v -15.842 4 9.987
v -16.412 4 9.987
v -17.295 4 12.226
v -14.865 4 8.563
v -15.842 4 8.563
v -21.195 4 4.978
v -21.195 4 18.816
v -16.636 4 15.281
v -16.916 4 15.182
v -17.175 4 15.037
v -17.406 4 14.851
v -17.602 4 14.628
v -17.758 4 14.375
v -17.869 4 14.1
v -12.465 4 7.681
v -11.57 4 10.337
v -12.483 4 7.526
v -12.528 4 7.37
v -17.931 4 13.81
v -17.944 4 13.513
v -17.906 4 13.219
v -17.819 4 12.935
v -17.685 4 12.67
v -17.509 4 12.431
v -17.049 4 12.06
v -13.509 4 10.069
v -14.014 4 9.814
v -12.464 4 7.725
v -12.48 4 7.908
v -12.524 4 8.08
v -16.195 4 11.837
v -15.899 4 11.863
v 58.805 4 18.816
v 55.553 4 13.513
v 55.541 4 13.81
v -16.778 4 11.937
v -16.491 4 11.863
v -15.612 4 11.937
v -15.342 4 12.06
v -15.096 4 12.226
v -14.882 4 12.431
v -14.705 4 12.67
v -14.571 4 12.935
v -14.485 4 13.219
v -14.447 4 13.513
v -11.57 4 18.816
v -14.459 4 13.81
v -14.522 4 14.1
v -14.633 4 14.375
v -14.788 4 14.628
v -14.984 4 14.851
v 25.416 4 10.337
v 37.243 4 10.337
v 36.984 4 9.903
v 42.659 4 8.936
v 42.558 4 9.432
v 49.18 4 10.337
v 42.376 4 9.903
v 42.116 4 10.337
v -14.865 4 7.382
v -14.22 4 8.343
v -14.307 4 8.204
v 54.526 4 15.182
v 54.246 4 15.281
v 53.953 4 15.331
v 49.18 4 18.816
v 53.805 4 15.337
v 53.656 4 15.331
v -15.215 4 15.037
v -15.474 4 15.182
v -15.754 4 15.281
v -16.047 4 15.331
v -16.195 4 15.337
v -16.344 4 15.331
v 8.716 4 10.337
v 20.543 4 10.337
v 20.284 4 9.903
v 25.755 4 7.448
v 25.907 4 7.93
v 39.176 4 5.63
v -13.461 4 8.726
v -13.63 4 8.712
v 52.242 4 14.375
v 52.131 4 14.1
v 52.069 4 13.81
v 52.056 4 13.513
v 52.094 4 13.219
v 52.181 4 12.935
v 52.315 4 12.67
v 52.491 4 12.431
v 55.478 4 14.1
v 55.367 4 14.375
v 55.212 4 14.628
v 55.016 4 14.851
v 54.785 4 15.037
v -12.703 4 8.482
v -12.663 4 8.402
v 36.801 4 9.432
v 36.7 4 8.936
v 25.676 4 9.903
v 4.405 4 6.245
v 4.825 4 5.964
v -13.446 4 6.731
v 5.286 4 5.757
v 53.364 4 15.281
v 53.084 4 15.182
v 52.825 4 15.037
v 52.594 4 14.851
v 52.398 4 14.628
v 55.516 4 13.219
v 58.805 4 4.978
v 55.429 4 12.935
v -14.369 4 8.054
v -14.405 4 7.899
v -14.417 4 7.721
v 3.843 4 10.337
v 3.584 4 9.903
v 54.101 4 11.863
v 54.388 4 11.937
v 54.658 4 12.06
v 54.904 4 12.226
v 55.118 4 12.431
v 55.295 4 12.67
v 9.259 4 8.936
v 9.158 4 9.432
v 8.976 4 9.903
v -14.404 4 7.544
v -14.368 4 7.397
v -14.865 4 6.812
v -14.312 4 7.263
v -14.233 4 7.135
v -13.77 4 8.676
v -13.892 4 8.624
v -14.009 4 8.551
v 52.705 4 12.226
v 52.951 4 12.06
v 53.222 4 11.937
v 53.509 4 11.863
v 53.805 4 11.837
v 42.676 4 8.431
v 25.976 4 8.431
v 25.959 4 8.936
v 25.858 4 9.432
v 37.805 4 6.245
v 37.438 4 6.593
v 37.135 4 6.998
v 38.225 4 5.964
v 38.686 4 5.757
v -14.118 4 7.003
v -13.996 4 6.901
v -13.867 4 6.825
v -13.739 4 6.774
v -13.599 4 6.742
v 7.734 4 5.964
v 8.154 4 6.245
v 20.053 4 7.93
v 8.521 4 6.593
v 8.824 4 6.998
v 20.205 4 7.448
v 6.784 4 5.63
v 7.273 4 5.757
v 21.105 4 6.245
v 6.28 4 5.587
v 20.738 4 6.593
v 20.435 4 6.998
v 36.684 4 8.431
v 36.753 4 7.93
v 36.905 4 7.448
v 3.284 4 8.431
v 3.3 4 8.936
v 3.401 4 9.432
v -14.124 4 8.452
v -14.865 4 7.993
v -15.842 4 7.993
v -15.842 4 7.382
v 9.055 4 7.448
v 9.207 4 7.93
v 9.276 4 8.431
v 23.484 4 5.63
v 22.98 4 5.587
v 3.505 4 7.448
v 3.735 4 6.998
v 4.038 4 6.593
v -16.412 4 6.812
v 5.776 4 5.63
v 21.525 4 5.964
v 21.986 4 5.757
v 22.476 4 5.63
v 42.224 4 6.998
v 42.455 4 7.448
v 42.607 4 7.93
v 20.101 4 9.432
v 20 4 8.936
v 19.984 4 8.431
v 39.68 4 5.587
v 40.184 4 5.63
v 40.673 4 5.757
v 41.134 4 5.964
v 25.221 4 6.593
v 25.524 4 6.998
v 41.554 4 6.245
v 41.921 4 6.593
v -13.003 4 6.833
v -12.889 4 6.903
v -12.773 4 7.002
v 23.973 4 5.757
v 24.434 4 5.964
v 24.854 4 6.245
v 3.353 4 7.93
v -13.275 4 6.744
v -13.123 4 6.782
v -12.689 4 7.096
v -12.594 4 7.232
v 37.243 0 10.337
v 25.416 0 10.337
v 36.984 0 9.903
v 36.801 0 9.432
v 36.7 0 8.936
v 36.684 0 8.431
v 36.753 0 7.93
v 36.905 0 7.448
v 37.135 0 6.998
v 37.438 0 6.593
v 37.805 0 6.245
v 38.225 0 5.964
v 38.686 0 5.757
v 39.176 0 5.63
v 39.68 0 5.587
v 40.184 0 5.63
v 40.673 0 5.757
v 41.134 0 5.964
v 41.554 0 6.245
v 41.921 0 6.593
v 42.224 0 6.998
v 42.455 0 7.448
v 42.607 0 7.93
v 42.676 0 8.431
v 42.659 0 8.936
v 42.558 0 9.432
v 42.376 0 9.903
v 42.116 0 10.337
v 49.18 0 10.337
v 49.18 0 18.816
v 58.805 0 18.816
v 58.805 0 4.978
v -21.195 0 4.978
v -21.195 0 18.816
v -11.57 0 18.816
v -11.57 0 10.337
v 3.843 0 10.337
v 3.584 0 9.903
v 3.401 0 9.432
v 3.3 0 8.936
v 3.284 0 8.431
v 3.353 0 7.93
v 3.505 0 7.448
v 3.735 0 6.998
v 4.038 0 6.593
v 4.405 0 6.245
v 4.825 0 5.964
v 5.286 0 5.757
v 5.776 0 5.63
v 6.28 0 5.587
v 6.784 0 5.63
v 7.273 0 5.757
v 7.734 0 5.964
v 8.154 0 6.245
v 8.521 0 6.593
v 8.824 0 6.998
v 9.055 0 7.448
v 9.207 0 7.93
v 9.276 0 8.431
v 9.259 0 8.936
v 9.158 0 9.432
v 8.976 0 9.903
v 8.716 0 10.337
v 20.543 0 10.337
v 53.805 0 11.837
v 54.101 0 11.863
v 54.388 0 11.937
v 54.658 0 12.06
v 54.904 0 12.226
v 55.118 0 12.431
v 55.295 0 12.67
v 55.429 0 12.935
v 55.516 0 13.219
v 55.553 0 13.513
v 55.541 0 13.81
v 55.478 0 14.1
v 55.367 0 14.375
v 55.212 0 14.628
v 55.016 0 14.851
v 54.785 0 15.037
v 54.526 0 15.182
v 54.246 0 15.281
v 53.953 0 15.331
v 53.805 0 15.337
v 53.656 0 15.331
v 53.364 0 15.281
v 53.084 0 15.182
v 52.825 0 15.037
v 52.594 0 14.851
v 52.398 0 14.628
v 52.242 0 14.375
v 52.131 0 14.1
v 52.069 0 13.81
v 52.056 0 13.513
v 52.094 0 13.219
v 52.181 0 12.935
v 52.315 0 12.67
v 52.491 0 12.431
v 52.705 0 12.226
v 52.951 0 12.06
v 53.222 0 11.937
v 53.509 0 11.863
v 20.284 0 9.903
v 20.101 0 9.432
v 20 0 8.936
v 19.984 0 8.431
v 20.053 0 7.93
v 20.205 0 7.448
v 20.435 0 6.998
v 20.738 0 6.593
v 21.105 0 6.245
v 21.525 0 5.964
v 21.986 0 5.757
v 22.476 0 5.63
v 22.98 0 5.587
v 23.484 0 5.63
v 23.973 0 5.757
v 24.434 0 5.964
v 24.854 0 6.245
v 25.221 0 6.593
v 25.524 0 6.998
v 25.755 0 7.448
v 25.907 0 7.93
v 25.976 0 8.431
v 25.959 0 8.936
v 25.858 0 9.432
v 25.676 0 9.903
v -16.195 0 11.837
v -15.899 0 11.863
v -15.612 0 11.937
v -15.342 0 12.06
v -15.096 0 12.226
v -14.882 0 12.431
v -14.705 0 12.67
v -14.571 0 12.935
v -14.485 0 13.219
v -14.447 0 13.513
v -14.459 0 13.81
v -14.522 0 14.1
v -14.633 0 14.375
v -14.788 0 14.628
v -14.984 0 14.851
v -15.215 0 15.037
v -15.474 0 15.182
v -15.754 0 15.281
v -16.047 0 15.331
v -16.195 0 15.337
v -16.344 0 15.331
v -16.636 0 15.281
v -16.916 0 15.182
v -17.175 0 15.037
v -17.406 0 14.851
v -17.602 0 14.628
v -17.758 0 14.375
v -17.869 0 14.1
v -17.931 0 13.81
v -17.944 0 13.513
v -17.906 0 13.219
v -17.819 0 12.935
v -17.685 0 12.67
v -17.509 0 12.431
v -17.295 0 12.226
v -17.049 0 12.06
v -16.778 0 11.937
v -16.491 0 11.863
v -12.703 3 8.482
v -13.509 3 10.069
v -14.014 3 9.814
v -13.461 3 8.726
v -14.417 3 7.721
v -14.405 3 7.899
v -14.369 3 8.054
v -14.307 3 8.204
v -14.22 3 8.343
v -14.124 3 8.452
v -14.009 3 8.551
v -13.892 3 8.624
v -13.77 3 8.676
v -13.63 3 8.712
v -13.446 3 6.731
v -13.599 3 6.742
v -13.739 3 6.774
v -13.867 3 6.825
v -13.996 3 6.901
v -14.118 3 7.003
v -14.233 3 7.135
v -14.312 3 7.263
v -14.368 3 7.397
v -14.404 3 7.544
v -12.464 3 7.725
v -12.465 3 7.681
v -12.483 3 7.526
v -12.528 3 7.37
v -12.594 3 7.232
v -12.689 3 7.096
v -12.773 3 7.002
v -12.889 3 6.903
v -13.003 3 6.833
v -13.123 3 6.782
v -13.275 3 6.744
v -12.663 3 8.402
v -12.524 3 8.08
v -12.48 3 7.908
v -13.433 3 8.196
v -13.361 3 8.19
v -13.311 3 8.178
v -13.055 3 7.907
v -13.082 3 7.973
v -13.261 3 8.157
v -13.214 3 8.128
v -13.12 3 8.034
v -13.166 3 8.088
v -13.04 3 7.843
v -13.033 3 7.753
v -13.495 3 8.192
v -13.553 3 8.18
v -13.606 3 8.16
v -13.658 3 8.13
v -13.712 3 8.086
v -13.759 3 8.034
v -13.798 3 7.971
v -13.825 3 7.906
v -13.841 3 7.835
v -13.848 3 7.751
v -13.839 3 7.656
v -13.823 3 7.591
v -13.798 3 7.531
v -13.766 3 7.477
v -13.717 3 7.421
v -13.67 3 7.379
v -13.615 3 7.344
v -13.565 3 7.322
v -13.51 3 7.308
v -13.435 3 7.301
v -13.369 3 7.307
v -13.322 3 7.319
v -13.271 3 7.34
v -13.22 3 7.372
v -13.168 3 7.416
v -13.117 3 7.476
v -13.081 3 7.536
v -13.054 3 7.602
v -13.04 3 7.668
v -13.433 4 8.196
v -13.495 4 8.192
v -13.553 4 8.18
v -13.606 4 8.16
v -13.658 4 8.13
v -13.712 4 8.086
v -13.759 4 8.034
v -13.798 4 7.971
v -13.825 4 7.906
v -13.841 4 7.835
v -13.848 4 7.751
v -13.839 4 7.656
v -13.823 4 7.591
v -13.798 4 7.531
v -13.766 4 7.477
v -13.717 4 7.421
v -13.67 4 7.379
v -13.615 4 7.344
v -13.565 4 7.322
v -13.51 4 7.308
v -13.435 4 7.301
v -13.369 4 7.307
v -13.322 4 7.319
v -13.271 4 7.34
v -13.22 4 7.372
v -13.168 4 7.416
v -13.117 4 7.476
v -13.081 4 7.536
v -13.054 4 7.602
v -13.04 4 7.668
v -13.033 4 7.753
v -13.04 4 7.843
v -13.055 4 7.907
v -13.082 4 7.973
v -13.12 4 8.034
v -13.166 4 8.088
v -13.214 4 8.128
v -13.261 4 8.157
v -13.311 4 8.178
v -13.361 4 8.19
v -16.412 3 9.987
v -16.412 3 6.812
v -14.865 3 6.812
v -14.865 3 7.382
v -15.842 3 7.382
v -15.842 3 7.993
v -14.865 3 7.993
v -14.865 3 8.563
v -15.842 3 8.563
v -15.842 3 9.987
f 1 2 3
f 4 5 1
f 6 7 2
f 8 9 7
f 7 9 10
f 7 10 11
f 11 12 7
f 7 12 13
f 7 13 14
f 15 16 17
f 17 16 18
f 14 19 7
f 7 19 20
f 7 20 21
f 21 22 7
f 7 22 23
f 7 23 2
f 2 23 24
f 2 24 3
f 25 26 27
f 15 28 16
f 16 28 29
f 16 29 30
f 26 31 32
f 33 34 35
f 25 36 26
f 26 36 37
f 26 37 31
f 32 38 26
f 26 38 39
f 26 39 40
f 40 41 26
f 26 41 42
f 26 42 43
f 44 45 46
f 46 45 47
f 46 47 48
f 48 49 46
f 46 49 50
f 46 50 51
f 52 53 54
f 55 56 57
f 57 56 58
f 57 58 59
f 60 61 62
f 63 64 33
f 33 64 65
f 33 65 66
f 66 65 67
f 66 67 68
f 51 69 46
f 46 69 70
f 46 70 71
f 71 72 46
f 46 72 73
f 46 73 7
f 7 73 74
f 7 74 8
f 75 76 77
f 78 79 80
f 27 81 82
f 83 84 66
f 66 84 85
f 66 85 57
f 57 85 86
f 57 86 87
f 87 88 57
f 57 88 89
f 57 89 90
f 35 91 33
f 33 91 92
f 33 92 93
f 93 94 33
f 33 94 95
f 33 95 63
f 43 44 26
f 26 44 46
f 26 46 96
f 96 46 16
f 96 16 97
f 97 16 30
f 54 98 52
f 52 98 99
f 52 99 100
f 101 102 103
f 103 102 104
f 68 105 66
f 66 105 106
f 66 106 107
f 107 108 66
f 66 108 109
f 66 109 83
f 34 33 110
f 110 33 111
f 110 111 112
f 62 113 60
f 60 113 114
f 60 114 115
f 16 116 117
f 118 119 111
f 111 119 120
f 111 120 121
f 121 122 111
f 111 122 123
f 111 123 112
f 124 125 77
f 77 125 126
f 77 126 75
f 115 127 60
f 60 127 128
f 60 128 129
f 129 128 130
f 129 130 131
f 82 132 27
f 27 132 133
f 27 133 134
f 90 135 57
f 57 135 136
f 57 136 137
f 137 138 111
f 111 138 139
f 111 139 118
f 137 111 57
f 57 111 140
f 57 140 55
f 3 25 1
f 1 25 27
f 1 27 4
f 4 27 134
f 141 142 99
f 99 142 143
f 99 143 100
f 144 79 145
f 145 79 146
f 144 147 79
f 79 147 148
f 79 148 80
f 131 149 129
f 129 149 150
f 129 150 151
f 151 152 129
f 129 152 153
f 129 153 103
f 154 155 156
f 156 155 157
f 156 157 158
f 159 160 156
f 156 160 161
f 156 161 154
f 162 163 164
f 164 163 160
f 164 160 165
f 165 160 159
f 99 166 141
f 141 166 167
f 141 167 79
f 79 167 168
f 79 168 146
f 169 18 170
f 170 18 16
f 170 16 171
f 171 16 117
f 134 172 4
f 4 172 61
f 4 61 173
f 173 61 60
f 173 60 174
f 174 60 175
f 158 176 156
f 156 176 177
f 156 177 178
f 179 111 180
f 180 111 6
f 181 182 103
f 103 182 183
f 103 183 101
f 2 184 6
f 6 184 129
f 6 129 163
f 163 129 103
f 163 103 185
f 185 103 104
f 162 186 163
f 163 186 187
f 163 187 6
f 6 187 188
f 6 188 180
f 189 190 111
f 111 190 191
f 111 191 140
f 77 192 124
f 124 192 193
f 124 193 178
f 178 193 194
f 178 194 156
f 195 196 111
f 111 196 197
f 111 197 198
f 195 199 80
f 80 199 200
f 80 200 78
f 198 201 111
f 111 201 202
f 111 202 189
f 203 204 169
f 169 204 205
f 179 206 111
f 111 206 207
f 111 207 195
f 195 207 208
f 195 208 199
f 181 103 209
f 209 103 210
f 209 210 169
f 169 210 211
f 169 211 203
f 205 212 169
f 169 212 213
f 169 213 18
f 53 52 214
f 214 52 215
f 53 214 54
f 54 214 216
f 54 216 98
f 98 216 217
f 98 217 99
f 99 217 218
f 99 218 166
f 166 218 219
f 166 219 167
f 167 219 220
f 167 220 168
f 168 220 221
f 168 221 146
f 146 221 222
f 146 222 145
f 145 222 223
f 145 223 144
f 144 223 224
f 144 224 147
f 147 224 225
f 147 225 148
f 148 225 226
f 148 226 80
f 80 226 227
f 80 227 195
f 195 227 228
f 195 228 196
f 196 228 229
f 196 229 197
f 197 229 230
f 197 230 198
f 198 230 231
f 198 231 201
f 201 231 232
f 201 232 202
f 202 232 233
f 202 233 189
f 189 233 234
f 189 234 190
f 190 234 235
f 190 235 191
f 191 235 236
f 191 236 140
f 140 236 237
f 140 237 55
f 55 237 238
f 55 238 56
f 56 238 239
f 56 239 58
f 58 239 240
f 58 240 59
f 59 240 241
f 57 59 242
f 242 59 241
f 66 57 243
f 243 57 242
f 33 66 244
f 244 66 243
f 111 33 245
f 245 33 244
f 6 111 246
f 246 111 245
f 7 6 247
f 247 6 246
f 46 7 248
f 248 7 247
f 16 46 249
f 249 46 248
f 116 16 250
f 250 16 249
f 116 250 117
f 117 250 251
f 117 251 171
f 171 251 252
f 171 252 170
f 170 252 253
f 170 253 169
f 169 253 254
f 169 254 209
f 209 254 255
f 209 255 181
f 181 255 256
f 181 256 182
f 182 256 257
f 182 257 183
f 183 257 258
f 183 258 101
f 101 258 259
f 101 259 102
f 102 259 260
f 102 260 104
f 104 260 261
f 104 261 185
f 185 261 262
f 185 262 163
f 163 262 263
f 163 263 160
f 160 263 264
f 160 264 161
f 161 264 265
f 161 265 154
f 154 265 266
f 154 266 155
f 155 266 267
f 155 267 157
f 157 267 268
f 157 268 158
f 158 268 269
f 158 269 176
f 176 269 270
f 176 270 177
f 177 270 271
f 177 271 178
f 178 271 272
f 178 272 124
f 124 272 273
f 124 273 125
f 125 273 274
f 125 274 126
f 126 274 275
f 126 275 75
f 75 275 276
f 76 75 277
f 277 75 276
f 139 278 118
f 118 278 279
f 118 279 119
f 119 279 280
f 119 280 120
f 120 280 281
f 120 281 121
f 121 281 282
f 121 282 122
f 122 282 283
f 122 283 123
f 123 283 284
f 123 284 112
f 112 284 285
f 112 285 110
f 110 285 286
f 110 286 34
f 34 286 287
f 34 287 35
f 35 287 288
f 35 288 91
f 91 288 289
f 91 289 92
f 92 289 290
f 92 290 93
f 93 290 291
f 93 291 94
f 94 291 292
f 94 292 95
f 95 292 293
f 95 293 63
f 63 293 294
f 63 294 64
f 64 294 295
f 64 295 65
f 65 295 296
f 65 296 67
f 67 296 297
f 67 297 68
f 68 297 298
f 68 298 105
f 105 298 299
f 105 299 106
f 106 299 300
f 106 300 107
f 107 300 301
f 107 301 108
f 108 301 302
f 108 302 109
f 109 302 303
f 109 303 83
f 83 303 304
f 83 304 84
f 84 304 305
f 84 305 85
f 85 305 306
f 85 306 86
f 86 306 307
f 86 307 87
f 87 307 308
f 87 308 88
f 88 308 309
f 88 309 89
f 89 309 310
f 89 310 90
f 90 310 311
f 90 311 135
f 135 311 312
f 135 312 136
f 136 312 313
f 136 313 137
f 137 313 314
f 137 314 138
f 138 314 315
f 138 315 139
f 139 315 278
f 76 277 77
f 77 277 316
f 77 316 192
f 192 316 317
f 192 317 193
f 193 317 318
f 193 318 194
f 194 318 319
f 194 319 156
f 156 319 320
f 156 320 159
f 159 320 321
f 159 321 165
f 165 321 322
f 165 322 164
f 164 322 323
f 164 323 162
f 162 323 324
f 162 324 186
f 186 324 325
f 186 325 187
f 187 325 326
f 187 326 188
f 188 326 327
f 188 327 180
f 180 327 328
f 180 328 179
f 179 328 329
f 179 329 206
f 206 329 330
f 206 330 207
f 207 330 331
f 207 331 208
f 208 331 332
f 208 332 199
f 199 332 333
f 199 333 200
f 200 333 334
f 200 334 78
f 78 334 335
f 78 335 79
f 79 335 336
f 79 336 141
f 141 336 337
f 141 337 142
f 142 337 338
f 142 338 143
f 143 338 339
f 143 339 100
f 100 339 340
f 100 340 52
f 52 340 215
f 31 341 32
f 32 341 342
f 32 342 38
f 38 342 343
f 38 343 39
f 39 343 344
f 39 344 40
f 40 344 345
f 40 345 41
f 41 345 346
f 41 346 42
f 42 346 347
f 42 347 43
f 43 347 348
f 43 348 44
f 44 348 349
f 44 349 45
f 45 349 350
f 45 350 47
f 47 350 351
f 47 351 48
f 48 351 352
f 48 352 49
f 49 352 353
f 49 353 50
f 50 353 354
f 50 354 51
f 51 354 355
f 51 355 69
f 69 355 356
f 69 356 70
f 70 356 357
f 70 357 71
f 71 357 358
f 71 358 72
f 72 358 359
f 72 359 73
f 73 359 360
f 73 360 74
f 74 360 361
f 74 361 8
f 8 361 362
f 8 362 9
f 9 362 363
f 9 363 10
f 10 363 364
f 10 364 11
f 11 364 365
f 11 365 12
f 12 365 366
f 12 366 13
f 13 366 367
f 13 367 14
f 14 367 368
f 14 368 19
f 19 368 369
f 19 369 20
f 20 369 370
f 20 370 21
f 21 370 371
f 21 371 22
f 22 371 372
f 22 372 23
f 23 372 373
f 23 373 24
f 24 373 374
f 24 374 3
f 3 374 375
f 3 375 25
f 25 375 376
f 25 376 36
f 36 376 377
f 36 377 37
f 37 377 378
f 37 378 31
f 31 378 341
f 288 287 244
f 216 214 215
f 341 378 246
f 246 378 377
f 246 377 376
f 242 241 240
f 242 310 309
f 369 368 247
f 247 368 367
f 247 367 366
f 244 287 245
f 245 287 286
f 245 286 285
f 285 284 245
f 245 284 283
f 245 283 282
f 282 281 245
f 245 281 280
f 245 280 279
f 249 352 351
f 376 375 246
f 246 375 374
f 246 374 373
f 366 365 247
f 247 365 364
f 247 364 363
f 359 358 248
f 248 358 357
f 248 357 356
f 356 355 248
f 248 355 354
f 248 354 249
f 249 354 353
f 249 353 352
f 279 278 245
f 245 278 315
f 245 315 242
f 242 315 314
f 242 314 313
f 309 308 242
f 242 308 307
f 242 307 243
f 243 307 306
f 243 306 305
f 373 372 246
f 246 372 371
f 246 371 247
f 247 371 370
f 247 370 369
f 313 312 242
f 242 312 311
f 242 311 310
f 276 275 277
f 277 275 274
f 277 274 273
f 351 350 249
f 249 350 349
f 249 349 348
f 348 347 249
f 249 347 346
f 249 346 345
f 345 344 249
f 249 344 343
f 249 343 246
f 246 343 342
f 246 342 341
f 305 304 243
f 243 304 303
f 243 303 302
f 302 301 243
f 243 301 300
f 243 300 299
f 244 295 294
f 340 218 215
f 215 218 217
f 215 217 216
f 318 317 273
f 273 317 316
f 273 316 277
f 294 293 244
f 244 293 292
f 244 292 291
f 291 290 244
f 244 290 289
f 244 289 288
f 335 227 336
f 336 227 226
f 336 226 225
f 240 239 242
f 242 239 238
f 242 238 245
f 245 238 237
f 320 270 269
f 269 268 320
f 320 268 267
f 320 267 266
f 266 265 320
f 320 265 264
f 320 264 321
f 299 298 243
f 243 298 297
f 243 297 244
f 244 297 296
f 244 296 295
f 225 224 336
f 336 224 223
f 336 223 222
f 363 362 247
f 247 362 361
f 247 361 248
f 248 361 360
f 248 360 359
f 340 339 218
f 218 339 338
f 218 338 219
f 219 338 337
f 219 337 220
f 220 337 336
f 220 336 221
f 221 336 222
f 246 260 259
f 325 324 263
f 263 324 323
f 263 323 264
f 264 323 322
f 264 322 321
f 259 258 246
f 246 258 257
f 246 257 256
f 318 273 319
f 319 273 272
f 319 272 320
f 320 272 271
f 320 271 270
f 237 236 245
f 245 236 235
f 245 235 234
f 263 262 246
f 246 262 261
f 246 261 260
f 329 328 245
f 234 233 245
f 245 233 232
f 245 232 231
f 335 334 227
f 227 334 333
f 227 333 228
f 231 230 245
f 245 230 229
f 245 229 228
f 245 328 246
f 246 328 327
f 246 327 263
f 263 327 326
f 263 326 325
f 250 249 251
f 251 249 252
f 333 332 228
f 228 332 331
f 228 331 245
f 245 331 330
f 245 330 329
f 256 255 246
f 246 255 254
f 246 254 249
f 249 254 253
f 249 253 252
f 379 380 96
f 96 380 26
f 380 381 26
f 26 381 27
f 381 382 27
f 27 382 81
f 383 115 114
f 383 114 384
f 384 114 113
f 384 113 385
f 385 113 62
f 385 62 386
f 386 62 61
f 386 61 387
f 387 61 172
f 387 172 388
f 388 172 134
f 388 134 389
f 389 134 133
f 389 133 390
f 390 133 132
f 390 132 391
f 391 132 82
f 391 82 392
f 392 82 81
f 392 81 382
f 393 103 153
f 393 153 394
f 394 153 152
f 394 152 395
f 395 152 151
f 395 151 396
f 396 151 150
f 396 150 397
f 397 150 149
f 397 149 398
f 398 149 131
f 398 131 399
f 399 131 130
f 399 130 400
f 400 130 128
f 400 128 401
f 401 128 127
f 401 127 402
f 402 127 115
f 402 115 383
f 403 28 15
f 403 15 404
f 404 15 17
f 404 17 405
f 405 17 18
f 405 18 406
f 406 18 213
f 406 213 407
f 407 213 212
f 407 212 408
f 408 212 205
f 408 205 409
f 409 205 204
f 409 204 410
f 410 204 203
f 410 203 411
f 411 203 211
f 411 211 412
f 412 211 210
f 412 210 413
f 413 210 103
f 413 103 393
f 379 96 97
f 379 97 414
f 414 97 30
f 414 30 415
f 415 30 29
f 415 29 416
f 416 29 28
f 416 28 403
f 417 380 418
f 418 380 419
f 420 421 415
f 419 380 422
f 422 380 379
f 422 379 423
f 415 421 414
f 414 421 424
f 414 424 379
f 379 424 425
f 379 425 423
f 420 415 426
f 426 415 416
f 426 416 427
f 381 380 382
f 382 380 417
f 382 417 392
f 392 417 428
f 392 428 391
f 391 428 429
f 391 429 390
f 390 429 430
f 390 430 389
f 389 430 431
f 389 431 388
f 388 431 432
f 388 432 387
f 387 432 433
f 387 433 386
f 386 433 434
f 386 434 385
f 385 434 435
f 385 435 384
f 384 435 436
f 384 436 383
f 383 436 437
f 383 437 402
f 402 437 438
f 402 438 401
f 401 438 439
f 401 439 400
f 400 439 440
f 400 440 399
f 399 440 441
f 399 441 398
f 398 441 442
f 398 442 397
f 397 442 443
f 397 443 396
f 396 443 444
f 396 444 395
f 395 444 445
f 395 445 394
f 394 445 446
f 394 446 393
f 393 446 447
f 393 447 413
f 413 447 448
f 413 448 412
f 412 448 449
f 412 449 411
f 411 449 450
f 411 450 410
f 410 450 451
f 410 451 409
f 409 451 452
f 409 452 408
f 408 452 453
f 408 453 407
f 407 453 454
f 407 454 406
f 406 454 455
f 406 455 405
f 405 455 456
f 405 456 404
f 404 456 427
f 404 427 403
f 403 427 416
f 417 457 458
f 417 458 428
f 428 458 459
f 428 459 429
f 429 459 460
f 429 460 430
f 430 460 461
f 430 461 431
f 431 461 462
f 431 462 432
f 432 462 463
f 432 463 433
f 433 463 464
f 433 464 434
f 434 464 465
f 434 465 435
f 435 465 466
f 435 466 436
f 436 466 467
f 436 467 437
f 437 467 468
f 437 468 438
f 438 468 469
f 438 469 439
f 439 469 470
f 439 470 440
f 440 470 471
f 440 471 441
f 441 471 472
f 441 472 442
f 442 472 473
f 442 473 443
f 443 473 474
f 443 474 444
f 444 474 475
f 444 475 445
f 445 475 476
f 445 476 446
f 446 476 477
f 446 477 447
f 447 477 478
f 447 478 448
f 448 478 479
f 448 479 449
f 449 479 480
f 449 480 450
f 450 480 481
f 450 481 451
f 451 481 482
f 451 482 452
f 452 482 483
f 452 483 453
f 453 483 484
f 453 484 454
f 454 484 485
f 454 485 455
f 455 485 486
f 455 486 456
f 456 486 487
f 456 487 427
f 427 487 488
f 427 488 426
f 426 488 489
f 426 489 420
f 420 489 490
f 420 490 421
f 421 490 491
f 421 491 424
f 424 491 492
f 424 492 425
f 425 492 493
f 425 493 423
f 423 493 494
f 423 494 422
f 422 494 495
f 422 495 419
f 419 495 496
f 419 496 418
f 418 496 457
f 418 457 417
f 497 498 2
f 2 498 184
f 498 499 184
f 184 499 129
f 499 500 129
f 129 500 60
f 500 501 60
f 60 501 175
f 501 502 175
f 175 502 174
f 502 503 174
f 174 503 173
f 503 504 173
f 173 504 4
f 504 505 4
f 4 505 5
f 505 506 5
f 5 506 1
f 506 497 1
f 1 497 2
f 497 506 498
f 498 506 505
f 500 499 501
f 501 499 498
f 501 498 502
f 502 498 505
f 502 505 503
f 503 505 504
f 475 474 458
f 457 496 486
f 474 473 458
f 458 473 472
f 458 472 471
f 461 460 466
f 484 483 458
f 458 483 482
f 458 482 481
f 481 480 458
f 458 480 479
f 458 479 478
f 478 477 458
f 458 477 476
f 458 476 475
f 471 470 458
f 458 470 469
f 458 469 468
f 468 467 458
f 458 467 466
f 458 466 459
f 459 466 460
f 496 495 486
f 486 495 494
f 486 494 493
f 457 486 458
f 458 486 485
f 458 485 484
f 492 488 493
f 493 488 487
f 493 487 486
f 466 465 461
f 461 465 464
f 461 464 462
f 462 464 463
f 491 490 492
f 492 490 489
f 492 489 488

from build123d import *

# Parameters (mm, degrees)
BOSS_EXTRUDE1_OUTLINE_R = 1.75
BOSS_EXTRUDE1_DEPTH     = 4
CUT_EXTRUDE1_DEPTH      = 1


# Read off the part's stored shape, not the designer's step: Boss-Extrude1
with BuildPart() as part:
    # Boss-Extrude1 outline → Boss-Extrude1 (new body)
    with BuildSketch(Plane(origin=(0, 0, 0), x_dir=(1, 0, 0), z_dir=(0, 1, 0))):
        with BuildLine():
            Line((25.416474615, -10.33744254), (37.24307775, -10.33744254))
            ThreePointArc((37.24307775, -10.33744254), (39.679776182, -5.587442326), (42.116474615, -10.33744254))
            Line((42.116474615, -10.33744254), (49.179776182, -10.33744254))
            Line((49.179776182, -10.33744254), (49.179776182, -18.81631662))
            Line((49.179776182, -18.81631662), (58.804776182, -18.81631662))
            Line((58.804776182, -18.81631662), (58.804776182, -4.977921711))
            Line((58.804776182, -4.977921711), (-21.195223818, -4.977921711))
            Line((-21.195223818, -4.977921711), (-21.195223818, -18.81631662))
            Line((-21.195223818, -18.81631662), (-11.570223818, -18.81631662))
            Line((-11.570223818, -18.81631662), (-11.570223818, -10.33744254))
            Line((-11.570223818, -10.33744254), (3.84307775, -10.33744254))
            ThreePointArc((3.84307775, -10.33744254), (6.279776182, -5.587442326), (8.716474615, -10.33744254))
            Line((8.716474615, -10.33744254), (20.54307775, -10.33744254))
            ThreePointArc((20.54307775, -10.33744254), (22.979776182, -5.587442326), (25.416474615, -10.33744254))
        make_face()
        with Locations((-16.195223818, -13.587442433)):
            Circle(BOSS_EXTRUDE1_OUTLINE_R, mode=Mode.SUBTRACT)
        with Locations((53.804776182, -13.587442433)):
            Circle(BOSS_EXTRUDE1_OUTLINE_R, mode=Mode.SUBTRACT)
    extrude(amount=BOSS_EXTRUDE1_DEPTH)

    # Sketch2 → Cut-Extrude1 (cut)
    # profile 1 of 2: a face of its own
    with BuildSketch(Plane(origin=(0, 4, 0), x_dir=(1, 0, 0), z_dir=(0, 1, 0))):
        Polygon((-16.41198232, -6.812466594), (-14.865187448, -6.812466594), (-14.865187448, -7.382338389), (-15.842110525, -7.382338389), (-15.842110525, -7.992915312), (-14.865187448, -7.992915312), (-14.865187448, -8.562787107), (-15.842110525, -8.562787107), (-15.842110525, -9.987466594), (-16.41198232, -9.987466594), align=None)
    # profile 2 of 2: a face of its own
    with BuildSketch(Plane(origin=(0, 4, 0), x_dir=(1, 0, 0), z_dir=(0, 1, 0))):
        with BuildLine():
            Line((-13.509197865, -10.06887685), (-14.014195862, -9.814469799))
            Line((-14.014195862, -9.814469799), (-13.460860525, -8.725607619))
            add(Edge.make_bspline(
                [(-13.460860525, -8.725607619), (-13.493552847, -8.724774336), (-13.557735785, -8.723138398), (-13.652240154, -8.70954377), (-13.742612406, -8.686336872), (-13.829917734, -8.655442645), (-13.912948731, -8.614025733), (-13.992712215, -8.564596821), (-14.068103991, -8.505208694), (-14.139477538, -8.438453984), (-14.204643867, -8.364668422), (-14.261206862, -8.285313298), (-14.310508019, -8.20240162), (-14.348847302, -8.114061596), (-14.37964161, -8.021939666), (-14.402141484, -7.925558996), (-14.414767818, -7.82449673), (-14.416532622, -7.755714857), (-14.417431038, -7.720699767)],
                knots=[0, 0, 0, 0, 1.014336294, 1.991387562, 2.955278539, 3.906441712, 4.859855302, 5.829322156, 6.813833455, 7.833278715, 8.858926674, 9.863225732, 10.85404919, 11.846815163, 12.845559416, 13.865450493, 14.913355531, 16, 16, 16, 16], degree=3))
            add(Edge.make_bspline(
                [(-14.417431038, -7.720699767), (-14.416597708, -7.686735475), (-14.414955648, -7.619809541), (-14.40131818, -7.521584049), (-14.378874437, -7.427273226), (-14.348082426, -7.336893095), (-14.307090423, -7.251053103), (-14.259110328, -7.168409197), (-14.200456838, -7.09067119), (-14.134198348, -7.017502553), (-14.061681947, -6.950566169), (-13.984748133, -6.89171273), (-13.903746713, -6.84251691), (-13.819718635, -6.801201496), (-13.73114503, -6.77033319), (-13.639305886, -6.747043281), (-13.543517063, -6.733601675), (-13.478497608, -6.731911573), (-13.445596102, -6.731056337)],
                knots=[0, 0, 0, 0, 1.055538678, 2.079917126, 3.075849687, 4.065898488, 5.041806164, 6.028602842, 7.031727914, 8.062953097, 9.093756959, 10.095582084, 11.068815425, 12.035667573, 13.000833448, 13.979119574, 14.977382875, 16, 16, 16, 16], degree=3))
            add(Edge.make_bspline(
                [(-13.445596102, -6.731056337), (-13.411193598, -6.731764476), (-13.343545729, -6.733156934), (-13.244518332, -6.748522162), (-13.149772928, -6.772095231), (-13.058924549, -6.804112269), (-12.97310104, -6.847566016), (-12.891584275, -6.899645635), (-12.814645404, -6.96150342), (-12.743110693, -7.03135644), (-12.678050673, -7.107334669), (-12.620383061, -7.186865545), (-12.571939818, -7.269793563), (-12.532261839, -7.355378619), (-12.501352894, -7.443754793), (-12.480106932, -7.535047442), (-12.466001971, -7.629100452), (-12.464397107, -7.692875343), (-12.463584884, -7.72515189)],
                knots=[0, 0, 0, 0, 1.062826075, 2.08990367, 3.089830715, 4.078784409, 5.060762809, 6.057138927, 7.064407536, 8.107320944, 9.143871033, 10.153461498, 11.140480137, 12.108246174, 13.065926856, 14.029354859, 15.002654194, 16, 16, 16, 16], degree=3))
            add(Edge.make_bspline(
                [(-12.463584884, -7.72515189), (-12.464028122, -7.749768446), (-12.464920902, -7.799351725), (-12.473699398, -7.873707226), (-12.487018143, -7.94826881), (-12.502477367, -8.01095661), (-12.518684213, -8.063798617), (-12.534455319, -8.108625261), (-12.554690113, -8.158391252), (-12.577284282, -8.213430161), (-12.60345099, -8.273500634), (-12.633732754, -8.338315513), (-12.666299428, -8.408836066), (-12.690304282, -8.45705706), (-12.702727513, -8.482012868)],
                knots=[0, 0, 0, 0, 1.105131805, 2.225983929, 3.357782449, 4.505488967, 5.122909461, 5.839607681, 6.638776516, 7.535249922, 8.51168636, 9.581005249, 10.748097757, 12, 12, 12, 12], degree=3))
            Line((-12.702727513, -8.482012868), (-13.509197865, -10.06887685))
        make_face()
        with BuildLine():
            add(Edge.make_bspline(
                [(-13.43287575, -8.196440953), (-13.405569868, -8.194833376), (-13.352220356, -8.191692536), (-13.275587332, -8.16740689), (-13.207004671, -8.125847553), (-13.146217368, -8.07063542), (-13.095984603, -8.003274093), (-13.059462095, -7.92658921), (-13.036965354, -7.84216883), (-13.034648703, -7.783384123), (-13.033456679, -7.753136666)],
                knots=[0, 0, 0, 0, 0.984774978, 1.924027336, 2.867853169, 3.859505234, 4.871392407, 5.881338128, 6.909850265, 8, 8, 8, 8], degree=3))
            add(Edge.make_bspline(
                [(-13.033456679, -7.753136666), (-13.034892342, -7.722259992), (-13.03768505, -7.66219749), (-13.0603973, -7.575750698), (-13.099207968, -7.497607925), (-13.152007661, -7.429680335), (-13.213650613, -7.37283362), (-13.282582994, -7.331308626), (-13.357130982, -7.305630901), (-13.408720798, -7.302506546), (-13.434783803, -7.300928132)],
                knots=[0, 0, 0, 0, 1.104110315, 2.147758178, 3.172670271, 4.206310416, 5.210906102, 6.157051016, 7.068948237, 8, 8, 8, 8], degree=3))
            add(Edge.make_bspline(
                [(-13.434783803, -7.300928132), (-13.462330936, -7.302466882), (-13.516419507, -7.305488204), (-13.594004346, -7.331104267), (-13.665525389, -7.371831843), (-13.72798309, -7.428871436), (-13.782037835, -7.495904441), (-13.819731685, -7.574310981), (-13.843578121, -7.660154514), (-13.846208342, -7.720324727), (-13.847559243, -7.751228613)],
                knots=[0, 0, 0, 0, 0.970967322, 1.90648639, 2.855811969, 3.858352357, 4.877096915, 5.878517833, 6.91039038, 8, 8, 8, 8], degree=3))
            add(Edge.make_bspline(
                [(-13.847559243, -7.751228613), (-13.846148143, -7.781691987), (-13.8434037, -7.840940069), (-13.820402477, -7.92583923), (-13.782935789, -8.002929935), (-13.731716155, -8.070822503), (-13.668626178, -8.126306671), (-13.596992367, -8.167423317), (-13.517086507, -8.191758387), (-13.461451298, -8.194852), (-13.43287575, -8.196440953)],
                knots=[0, 0, 0, 0, 1.075706617, 2.092137047, 3.084482865, 4.090466434, 5.0784141, 6.035155512, 6.990809768, 8, 8, 8, 8], degree=3))
        make_face(mode=Mode.SUBTRACT)
    extrude(amount=-CUT_EXTRUDE1_DEPTH, mode=Mode.SUBTRACT)


solid = part.part
